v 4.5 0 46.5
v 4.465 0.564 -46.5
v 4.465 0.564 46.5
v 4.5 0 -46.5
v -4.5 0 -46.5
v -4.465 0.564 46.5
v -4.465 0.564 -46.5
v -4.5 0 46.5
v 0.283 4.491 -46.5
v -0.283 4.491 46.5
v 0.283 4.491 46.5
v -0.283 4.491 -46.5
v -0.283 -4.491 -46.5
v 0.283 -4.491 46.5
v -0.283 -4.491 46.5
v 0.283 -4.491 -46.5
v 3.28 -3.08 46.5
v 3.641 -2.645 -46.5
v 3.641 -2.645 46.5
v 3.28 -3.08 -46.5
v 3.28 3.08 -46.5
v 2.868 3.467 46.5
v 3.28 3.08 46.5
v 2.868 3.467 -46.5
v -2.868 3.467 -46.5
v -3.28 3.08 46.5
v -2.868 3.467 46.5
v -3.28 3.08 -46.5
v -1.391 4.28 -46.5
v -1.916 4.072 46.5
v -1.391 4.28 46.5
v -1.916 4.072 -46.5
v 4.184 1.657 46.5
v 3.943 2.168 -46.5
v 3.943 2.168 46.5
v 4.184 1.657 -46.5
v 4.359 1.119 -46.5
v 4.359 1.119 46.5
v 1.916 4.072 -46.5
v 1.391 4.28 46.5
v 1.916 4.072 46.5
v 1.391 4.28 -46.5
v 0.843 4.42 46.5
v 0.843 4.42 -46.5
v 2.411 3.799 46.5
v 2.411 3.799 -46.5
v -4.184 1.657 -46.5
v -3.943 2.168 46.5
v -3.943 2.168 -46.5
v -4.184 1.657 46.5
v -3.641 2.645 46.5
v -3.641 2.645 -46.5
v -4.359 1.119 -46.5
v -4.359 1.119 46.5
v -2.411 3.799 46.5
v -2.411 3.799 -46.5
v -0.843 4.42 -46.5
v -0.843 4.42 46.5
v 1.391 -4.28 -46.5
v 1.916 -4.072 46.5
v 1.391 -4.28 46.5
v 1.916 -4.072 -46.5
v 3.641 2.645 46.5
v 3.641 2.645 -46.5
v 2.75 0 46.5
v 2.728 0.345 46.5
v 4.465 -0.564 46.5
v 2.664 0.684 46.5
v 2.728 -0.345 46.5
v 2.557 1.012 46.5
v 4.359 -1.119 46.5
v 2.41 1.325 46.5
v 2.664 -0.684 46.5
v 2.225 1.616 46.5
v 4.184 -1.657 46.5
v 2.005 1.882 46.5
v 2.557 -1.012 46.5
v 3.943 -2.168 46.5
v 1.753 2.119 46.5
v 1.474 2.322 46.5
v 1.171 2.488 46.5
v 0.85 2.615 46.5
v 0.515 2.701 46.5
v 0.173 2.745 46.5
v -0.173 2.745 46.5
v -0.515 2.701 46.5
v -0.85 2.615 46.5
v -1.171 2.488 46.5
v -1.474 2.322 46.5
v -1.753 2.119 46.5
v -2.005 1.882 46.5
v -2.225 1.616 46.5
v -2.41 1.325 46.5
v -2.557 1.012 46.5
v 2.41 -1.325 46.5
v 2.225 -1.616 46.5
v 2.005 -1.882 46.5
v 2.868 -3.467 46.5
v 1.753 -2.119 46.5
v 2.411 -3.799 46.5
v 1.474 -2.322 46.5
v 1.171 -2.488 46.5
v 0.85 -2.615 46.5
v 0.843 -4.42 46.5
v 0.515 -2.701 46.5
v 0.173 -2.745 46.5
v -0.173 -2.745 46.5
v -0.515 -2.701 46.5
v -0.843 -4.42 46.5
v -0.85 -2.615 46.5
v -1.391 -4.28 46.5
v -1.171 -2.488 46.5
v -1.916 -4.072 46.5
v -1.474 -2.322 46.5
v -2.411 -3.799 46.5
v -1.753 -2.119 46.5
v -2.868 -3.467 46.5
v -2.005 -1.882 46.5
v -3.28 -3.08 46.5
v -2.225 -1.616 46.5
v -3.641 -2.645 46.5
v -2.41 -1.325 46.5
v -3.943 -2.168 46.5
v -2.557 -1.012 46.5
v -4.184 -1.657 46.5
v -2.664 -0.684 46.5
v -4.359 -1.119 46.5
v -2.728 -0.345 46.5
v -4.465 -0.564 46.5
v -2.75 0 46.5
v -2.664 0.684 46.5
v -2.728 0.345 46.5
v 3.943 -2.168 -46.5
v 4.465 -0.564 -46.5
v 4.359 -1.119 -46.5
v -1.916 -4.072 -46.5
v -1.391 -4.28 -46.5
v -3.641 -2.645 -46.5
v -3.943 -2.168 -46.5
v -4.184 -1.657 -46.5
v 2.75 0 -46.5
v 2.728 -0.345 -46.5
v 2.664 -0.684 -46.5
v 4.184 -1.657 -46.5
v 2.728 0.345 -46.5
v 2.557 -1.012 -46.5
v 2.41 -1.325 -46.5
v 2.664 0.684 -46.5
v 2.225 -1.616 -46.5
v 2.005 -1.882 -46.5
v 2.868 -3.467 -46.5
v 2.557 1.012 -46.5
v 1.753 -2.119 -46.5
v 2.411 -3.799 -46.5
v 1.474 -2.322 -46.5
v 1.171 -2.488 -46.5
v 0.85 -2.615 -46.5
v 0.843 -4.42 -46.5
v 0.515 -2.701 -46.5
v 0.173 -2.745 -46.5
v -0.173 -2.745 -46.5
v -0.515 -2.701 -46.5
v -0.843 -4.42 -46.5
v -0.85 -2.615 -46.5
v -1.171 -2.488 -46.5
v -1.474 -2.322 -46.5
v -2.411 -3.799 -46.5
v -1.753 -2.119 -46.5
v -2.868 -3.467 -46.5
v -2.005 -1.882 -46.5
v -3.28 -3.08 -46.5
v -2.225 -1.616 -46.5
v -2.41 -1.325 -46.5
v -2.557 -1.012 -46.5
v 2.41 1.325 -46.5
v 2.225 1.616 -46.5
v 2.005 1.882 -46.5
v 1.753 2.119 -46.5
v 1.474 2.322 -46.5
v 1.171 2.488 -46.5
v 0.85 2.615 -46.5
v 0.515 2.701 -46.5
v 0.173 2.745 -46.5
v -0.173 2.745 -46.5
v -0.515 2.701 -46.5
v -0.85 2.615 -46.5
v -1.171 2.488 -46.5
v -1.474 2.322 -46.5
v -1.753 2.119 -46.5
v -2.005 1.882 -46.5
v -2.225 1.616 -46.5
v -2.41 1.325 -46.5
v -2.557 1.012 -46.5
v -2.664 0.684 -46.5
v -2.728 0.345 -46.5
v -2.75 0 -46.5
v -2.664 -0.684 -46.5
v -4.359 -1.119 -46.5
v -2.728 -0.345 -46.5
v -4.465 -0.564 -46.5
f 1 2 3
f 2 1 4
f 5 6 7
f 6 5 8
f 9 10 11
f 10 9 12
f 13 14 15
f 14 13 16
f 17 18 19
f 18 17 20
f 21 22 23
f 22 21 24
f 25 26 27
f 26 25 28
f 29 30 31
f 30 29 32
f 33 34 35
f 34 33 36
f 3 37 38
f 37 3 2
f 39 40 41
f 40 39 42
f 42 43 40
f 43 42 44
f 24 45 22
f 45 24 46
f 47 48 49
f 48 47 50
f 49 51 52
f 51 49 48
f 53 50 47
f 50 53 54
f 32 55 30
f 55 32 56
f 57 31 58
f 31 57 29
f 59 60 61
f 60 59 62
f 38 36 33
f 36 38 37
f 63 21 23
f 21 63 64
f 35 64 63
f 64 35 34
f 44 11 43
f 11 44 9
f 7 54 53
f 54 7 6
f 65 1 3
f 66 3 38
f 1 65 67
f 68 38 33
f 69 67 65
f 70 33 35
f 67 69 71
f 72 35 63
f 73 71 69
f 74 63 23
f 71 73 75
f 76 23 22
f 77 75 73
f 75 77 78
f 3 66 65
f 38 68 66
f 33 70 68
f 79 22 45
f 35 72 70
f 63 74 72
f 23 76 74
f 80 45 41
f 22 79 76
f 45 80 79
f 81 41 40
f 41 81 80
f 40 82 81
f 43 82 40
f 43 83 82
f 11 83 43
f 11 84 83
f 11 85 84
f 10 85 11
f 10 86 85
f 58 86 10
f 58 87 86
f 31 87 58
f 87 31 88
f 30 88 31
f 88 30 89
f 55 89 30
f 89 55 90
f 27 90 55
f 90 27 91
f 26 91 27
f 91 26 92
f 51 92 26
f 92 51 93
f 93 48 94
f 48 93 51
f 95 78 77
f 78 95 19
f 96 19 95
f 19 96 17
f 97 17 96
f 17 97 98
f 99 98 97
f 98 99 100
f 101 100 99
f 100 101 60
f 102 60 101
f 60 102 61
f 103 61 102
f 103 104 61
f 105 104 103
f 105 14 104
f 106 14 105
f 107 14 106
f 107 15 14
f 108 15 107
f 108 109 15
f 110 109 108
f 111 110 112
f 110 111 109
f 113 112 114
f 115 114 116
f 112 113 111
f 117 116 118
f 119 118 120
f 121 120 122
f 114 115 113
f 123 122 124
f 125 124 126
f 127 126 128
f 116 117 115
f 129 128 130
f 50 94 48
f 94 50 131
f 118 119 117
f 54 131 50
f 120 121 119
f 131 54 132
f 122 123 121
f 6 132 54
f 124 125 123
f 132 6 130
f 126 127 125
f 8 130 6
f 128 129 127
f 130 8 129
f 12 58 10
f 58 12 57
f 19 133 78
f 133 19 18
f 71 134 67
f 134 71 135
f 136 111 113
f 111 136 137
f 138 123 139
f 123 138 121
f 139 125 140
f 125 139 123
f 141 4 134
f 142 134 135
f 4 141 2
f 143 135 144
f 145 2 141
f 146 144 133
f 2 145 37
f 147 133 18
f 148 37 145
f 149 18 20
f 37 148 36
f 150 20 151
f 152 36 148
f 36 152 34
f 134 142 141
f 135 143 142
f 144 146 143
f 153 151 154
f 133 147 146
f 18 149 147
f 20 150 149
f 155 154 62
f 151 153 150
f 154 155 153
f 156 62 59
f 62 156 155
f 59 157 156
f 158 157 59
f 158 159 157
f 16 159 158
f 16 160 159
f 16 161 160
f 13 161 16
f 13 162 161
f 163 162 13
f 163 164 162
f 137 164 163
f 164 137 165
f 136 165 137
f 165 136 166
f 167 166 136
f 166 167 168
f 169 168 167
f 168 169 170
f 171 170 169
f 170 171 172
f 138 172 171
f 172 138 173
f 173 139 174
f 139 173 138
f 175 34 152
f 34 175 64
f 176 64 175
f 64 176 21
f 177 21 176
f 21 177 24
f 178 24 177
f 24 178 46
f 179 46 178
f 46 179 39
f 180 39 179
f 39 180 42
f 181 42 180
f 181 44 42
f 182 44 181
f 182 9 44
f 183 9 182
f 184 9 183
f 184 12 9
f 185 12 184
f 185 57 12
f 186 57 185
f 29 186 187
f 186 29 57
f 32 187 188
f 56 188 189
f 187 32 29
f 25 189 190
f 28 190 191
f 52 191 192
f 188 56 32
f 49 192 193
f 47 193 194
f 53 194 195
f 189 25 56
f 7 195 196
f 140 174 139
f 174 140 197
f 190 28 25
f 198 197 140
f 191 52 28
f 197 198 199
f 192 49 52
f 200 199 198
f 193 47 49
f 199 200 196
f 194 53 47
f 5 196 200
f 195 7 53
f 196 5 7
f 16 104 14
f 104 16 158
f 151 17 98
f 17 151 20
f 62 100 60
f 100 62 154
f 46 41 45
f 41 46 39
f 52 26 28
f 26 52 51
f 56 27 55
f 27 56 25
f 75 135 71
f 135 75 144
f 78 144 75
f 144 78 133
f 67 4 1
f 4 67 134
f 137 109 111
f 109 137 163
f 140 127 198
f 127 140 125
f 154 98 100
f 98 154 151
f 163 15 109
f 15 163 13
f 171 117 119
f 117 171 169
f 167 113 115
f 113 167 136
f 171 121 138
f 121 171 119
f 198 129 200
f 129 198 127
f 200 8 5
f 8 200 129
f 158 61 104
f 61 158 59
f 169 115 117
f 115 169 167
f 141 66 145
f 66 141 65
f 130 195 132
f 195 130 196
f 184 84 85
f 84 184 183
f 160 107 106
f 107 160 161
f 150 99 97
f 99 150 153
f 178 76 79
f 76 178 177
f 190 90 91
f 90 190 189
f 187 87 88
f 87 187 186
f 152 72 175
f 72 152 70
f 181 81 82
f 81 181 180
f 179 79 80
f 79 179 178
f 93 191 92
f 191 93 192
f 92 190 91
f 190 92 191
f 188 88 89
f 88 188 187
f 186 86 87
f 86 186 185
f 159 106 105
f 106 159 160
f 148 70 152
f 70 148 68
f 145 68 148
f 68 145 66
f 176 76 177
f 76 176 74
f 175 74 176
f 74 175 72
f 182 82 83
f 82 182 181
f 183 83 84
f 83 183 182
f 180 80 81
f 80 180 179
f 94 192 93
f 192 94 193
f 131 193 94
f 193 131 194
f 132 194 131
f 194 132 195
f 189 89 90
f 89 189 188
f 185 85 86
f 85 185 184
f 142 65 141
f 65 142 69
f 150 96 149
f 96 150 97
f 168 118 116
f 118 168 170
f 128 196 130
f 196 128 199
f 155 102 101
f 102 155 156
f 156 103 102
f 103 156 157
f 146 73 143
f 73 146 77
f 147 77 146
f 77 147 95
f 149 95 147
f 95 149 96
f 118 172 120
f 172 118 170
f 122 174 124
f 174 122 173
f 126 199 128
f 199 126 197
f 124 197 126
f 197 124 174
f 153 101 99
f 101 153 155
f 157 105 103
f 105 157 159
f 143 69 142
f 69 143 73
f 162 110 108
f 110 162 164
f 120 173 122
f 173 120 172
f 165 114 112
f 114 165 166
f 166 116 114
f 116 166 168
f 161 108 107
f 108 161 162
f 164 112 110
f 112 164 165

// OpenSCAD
$fn = 50;


difference() {
	union() {
		translate(v = [0, 0, -46.5000000000]) {
			cylinder(h = 93, r = 4.5000000000);
		}
	}
	union() {
		translate(v = [0, 0, -100.0000000000]) {
			cylinder(h = 200, r = 2.7500000000);
		}
	}
}
